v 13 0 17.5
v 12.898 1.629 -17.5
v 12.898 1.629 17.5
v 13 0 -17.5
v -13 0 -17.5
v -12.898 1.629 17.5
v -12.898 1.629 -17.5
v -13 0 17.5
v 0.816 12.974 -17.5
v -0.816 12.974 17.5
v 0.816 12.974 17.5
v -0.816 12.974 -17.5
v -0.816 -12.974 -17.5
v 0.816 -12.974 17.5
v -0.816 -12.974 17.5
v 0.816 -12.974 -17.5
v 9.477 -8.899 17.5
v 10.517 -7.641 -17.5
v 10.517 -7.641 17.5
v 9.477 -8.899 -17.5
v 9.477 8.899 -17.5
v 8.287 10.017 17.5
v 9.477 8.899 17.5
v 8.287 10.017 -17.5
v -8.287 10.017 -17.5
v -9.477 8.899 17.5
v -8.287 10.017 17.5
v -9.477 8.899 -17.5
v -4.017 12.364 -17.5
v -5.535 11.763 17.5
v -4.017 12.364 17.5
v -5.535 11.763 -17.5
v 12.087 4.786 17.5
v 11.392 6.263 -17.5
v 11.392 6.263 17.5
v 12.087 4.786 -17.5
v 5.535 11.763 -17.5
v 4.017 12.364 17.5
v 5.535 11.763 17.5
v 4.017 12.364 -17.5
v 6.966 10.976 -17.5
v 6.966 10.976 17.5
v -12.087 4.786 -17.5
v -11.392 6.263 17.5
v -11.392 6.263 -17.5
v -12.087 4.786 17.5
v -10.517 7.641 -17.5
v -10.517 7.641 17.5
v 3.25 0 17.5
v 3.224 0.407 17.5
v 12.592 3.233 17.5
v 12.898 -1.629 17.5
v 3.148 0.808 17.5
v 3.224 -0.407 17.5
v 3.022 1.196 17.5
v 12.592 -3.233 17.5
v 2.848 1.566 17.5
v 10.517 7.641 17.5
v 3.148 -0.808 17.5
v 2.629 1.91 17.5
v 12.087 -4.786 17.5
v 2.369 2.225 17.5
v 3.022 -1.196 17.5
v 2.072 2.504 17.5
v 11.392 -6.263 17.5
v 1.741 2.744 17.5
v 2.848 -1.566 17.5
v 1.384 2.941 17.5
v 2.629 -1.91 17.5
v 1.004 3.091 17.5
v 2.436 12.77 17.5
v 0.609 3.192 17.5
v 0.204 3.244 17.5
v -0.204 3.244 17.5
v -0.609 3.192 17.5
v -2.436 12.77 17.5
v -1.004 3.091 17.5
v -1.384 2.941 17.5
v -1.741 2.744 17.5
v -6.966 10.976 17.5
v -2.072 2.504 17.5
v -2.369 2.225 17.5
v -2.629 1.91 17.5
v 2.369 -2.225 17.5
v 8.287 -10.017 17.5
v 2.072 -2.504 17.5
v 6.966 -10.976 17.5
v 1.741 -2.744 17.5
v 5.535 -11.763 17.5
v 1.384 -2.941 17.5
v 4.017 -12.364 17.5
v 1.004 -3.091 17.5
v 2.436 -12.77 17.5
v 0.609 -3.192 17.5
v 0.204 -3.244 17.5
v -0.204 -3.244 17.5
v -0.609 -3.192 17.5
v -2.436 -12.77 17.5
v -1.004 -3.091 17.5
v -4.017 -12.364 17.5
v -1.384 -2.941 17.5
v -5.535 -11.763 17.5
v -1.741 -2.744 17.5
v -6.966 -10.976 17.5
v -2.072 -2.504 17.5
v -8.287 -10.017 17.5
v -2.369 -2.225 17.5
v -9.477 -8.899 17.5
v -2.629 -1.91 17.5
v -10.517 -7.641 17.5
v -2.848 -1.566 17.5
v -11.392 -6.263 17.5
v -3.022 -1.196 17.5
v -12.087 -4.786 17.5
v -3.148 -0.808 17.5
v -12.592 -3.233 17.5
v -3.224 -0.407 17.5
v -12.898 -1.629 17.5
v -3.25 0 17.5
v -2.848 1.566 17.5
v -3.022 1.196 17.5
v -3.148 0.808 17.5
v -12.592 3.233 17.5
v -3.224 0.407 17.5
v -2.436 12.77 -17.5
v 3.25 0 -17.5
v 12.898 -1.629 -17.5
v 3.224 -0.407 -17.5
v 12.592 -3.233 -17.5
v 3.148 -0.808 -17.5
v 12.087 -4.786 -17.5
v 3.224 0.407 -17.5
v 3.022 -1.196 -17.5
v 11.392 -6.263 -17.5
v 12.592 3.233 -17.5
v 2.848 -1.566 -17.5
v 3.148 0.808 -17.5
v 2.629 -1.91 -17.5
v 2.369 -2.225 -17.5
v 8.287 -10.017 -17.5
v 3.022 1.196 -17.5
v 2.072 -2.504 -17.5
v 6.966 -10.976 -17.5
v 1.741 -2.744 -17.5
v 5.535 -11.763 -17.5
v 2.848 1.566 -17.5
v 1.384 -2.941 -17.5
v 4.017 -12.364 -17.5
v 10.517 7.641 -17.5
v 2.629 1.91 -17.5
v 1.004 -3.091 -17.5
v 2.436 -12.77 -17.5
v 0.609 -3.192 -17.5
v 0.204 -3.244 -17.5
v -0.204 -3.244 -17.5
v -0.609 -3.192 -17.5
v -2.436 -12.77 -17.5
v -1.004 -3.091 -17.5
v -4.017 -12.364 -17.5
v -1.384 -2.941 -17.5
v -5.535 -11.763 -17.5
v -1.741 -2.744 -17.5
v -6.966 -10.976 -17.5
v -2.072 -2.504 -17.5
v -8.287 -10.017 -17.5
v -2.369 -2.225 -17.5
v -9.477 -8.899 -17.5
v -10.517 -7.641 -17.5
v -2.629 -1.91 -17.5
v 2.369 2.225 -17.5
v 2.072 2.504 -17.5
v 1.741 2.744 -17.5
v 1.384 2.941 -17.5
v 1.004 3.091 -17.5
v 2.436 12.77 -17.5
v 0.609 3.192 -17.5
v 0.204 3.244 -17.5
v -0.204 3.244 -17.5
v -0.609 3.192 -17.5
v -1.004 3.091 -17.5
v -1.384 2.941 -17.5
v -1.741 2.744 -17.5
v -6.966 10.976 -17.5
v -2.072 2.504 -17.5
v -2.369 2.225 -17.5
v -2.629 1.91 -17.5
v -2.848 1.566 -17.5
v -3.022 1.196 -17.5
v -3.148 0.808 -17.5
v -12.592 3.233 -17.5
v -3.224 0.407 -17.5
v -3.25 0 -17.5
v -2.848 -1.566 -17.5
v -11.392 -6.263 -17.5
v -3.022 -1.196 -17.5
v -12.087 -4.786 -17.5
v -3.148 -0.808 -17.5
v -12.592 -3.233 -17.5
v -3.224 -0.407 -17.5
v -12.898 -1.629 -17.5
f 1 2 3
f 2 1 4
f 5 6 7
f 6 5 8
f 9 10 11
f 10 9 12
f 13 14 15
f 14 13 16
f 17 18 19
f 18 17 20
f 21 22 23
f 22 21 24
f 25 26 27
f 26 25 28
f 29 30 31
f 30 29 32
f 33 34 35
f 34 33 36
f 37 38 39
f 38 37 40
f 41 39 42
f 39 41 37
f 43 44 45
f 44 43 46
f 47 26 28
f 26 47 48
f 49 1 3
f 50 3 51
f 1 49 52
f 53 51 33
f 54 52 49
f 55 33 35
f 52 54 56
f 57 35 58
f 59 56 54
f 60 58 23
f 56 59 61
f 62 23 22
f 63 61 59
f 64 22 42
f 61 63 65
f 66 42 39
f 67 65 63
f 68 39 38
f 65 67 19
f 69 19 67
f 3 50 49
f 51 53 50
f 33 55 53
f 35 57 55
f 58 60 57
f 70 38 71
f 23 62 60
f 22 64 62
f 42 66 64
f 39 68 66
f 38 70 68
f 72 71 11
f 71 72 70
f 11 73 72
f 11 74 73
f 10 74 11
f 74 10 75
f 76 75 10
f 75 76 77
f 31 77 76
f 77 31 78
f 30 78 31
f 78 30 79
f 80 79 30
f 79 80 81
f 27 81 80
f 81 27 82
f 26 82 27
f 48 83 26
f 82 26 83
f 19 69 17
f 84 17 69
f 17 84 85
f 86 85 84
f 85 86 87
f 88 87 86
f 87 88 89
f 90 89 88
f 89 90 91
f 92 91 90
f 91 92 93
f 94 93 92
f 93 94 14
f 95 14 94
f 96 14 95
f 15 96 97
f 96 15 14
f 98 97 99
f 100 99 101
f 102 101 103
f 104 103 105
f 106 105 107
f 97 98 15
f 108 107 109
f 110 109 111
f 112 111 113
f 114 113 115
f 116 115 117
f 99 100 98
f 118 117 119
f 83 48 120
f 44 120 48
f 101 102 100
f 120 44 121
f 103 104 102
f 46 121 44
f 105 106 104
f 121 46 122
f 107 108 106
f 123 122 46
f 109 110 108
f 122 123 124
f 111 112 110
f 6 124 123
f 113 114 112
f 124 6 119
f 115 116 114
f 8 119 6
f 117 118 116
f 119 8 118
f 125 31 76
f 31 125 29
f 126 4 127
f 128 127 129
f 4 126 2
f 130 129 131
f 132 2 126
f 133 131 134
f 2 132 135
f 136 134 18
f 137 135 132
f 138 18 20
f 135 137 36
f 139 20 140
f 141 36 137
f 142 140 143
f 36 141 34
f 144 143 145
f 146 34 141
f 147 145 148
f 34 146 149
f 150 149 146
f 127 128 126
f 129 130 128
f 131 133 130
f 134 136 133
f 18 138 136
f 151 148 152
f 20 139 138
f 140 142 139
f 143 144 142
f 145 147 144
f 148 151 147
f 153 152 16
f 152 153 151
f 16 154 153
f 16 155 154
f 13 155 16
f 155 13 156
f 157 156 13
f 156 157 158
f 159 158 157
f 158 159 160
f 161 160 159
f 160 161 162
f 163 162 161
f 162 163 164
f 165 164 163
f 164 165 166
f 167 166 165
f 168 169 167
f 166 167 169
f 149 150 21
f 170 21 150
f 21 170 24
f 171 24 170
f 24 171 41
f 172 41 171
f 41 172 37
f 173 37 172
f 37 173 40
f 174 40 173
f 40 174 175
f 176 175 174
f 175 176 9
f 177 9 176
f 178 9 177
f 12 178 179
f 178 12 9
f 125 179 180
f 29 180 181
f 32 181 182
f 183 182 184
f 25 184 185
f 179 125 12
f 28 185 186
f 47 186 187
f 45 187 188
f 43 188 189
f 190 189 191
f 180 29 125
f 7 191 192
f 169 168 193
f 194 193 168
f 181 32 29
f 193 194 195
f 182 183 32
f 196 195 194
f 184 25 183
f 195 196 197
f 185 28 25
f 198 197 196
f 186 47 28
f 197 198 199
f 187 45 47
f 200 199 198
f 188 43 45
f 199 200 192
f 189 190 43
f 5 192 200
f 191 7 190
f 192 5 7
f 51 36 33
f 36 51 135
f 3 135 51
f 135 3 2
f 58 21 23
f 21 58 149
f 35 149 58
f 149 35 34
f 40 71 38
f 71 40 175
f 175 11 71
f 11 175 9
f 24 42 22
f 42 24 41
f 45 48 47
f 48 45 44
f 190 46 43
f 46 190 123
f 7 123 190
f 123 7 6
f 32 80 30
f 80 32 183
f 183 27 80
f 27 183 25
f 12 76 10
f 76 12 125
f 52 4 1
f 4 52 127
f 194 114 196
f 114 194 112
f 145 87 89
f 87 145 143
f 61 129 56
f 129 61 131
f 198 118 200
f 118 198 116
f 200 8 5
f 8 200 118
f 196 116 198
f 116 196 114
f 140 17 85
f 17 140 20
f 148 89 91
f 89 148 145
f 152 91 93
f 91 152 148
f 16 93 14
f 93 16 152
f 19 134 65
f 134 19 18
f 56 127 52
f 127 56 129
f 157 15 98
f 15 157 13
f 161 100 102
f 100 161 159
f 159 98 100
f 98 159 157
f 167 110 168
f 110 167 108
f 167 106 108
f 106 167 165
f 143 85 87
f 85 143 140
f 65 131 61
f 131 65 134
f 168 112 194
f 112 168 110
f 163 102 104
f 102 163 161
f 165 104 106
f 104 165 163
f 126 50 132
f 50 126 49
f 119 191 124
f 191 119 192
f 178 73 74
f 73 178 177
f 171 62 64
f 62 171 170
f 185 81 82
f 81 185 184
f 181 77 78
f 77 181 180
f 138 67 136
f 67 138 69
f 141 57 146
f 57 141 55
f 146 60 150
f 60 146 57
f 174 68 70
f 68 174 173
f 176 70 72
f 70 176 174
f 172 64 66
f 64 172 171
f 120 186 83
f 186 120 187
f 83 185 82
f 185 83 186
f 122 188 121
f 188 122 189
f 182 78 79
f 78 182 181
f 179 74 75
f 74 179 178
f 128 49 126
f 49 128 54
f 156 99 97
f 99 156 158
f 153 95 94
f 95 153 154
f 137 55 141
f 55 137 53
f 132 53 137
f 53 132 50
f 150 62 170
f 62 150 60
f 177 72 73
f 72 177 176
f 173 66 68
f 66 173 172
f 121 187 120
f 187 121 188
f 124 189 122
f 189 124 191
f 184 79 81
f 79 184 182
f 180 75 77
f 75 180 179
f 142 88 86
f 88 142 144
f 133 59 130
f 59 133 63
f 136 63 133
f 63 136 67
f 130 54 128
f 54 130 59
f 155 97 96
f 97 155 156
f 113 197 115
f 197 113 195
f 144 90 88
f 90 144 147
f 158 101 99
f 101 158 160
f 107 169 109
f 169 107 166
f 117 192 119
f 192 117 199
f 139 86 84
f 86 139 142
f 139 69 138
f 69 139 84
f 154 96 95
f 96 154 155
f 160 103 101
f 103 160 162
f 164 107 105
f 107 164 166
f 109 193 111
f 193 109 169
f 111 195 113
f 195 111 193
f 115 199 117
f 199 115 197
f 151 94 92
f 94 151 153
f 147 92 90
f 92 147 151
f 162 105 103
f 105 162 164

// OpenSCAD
$fn = 50;


difference() {
	union() {
		translate(v = [0, 0, -17.5000000000]) {
			cylinder(h = 35, r = 13.0000000000);
		}
	}
	union() {
		translate(v = [0, 0, -100.0000000000]) {
			cylinder(h = 200, r = 3.2500000000);
		}
	}
}
